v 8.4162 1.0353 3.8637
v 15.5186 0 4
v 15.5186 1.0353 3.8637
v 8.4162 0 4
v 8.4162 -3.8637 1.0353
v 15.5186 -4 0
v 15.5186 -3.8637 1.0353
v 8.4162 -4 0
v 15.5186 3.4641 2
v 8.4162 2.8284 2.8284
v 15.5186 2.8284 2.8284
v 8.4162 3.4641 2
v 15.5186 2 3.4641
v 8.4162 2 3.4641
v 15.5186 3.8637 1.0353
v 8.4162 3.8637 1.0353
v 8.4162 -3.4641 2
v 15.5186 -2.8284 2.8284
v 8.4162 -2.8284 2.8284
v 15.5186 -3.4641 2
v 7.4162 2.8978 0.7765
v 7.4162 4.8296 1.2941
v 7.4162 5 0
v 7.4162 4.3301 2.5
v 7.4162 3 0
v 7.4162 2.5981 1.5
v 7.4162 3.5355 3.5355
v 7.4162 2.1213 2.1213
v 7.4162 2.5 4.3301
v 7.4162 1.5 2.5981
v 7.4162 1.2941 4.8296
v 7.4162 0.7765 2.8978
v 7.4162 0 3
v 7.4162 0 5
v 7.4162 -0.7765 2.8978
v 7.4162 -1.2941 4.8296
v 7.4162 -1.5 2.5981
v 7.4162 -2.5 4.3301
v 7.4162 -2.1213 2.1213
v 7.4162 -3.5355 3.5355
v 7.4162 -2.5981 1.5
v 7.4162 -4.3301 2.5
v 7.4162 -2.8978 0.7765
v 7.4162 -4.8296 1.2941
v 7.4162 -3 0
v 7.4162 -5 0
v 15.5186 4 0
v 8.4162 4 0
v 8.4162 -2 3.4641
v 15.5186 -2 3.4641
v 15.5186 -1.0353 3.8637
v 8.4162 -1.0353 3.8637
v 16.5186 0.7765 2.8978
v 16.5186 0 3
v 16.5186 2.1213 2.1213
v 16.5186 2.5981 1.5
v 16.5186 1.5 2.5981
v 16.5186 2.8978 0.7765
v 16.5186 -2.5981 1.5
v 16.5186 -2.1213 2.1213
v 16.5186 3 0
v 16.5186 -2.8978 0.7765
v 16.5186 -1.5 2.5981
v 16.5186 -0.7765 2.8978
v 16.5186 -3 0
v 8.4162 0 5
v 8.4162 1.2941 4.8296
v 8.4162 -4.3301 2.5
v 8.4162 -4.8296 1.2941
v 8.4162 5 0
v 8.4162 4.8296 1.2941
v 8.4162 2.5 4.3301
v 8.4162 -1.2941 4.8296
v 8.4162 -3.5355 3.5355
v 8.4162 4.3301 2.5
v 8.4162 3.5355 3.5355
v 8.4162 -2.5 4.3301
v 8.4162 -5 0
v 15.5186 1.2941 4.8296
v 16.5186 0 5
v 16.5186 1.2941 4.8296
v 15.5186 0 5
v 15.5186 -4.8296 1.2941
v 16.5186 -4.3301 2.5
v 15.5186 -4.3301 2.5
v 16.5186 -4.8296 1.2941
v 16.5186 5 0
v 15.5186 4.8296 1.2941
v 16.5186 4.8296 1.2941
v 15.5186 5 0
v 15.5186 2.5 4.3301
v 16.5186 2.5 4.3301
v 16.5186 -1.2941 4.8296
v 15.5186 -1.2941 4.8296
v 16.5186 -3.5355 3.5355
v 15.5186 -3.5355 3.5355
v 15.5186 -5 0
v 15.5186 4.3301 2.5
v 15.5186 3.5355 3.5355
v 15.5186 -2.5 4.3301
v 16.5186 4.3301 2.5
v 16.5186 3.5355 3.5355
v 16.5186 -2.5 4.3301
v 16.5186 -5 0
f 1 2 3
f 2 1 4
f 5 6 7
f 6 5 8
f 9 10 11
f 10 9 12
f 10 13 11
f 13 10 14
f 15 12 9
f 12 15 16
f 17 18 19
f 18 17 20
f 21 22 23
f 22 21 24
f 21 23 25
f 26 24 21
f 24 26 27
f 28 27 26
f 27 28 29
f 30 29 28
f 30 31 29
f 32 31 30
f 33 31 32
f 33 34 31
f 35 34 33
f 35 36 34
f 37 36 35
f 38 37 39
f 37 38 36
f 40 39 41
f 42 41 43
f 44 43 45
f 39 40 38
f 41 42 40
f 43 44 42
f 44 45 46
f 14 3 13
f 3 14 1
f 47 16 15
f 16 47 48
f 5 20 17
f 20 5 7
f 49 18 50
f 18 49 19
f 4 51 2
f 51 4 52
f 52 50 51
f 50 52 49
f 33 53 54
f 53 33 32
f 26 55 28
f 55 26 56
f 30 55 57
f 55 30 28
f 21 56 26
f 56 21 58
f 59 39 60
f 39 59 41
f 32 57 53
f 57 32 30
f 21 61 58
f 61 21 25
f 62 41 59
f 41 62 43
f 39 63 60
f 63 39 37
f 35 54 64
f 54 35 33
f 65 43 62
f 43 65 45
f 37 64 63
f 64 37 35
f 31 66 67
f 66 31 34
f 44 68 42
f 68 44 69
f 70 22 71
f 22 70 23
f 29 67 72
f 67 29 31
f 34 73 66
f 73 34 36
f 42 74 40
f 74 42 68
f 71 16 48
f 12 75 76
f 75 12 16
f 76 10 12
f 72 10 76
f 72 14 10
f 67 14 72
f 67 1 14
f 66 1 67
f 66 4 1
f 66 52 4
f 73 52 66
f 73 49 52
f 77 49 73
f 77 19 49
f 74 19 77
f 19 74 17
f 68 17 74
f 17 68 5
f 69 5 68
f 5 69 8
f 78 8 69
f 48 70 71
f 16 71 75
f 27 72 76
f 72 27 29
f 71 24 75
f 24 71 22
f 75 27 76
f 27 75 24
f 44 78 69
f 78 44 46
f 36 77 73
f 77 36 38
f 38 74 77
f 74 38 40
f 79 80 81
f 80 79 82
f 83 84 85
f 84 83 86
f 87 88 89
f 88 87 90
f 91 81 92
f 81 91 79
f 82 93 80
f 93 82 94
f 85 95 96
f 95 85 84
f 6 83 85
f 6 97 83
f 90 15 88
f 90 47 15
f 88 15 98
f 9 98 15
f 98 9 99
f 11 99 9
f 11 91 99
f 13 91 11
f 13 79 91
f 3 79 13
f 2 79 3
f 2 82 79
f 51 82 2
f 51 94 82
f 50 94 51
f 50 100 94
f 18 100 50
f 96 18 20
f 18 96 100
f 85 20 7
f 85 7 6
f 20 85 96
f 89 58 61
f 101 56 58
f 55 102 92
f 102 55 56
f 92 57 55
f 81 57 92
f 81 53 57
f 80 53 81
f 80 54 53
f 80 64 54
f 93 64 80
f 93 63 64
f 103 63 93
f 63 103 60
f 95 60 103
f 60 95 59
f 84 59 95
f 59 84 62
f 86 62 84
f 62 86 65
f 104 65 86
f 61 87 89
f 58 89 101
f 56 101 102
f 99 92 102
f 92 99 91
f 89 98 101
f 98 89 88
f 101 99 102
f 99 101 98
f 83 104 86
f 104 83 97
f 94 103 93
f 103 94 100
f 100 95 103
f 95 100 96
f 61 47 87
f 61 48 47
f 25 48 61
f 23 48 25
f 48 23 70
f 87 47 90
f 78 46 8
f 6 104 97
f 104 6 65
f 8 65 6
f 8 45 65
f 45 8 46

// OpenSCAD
// file: ../build_environments.scad
// build_environments.scad: modules to build level sections
//

module pool(diameter=10.0, wall_height=2.0, step_width=3.0, connections=[])
{
    difference() {
        union() {
        difference() {
            cylinder(h=0.5,r1=diameter+step_width,r2=diameter+step_width,$fn=48);
            translate([0,0,-0.1])
                cylinder(h=0.7,r1=diameter,r2=diameter,$fn=48);
        }
        difference() {
            cylinder(h=wall_height,r1=diameter+step_width+1.0,r2=diameter+step_width+1.0,$fn=48);
            translate([0,0,-0.1])
                cylinder(h=wall_height+0.2,r1=diameter+step_width,r2=diameter+step_width,$fn=48);
        }
        }
    
        for (c = connections)
        {
            rotate([0,90,0]) {
                angle = atan2(c[1],c[0]);
                rotate([-angle,0,0]) {
                    cylinder(h=diameter+5.0,r1=c[2],r2=c[2],$fn=48);
                }
            }
        }
    }
}

module straight(length=10.0, width=2.0, dy1=0.0, dy2=0.0, dz=0.0)
{
    dims = [0, 0, 0, 0, 0, (dz/length)];
    matrix = [
        [ 1, dims[0], dims[1], 0 ],
        [ dims[2], 1, dims[4], 0 ],
        [ dims[5], dims[3], 1, 0 ],
        [ 0, 0, 0, 1 ]
    ];
    multmatrix(matrix)
    difference() {
        translate([dy1,0,0])
        union() {
            rotate([0,90,0]) {
                difference() {
                    cylinder(h=(length-dy1-dy2),r1=width+1.0,r2=width+1.0,$fn=24);
                    translate([0,0,-0.1])
                        cylinder(h=(length-dy1-dy2+0.2),r1=width,r2=width,$fn=24);
                }
                difference() {
                    cylinder(h=1.0,r1=width+2.0,r2=width+2.0,$fn=24);
                    translate([0,0,-0.1])
                        cylinder(h=1.2,r1=width,r2=width,$fn=24);
                }
                translate([0,0,(length-dy1-dy2)-1.0]) {
                    difference() {
                        cylinder(h=1.0,r1=width+2.0,r2=width+2.0,$fn=24);
                        translate([0,0,-0.1])
                            cylinder(h=1.2,r1=width,r2=width,$fn=24);
                    }
                }
            }
        }
        translate([0,0,-(2*width+4.0)/2])
            cube([3*length,3*length,2*width+4.0],center=true);
    }
}

module curve(p0=[0,0], center=[0,0], dir=1, angle=0.0, width=2.0)
{
    radius = sqrt((p0[0]-center[0])*(p0[0]-center[0]) + (p0[1]-center[1])*(p0[1]-center[1]));
    if (dir == 0) {
        difference() {
            rotate([0,0,-90])
            difference() {
                rotate_extrude(angle = angle, convexity = 10, $fn=32)
                    translate([radius, 0, 0])
                        circle(r = width+1.0,$fn=24);
                rotate([0,0,-1.0])
                    rotate_extrude(angle = angle+2.0, convexity = 10, $fn=32)
                        translate([radius, 0, 0])
                            circle(r = width,$fn=24);
            }
            translate([0,0,-(2*width+4.0)/2])
                cube([5*radius,5*radius,2*width+4.0],center=true);
        }
    }
    else {
        difference() {
            rotate([0,0,90])
            difference() {
                rotate_extrude(angle = -angle, convexity = 10, $fn=32)
                    translate([radius, 0, 0])
                        circle(r = width+1.0,$fn=24);
                rotate([0,0,1.0])
                    rotate_extrude(angle = -angle-2.0, convexity = 10, $fn=32)
                        translate([radius, 0, 0])
                            circle(r = width,$fn=24);
            }
            translate([0,0,-(2*width+4.0)/2])
                cube([5*radius,5*radius,2*width+4.0],center=true);
        }
    }

}

// test pool
//pool(diameter=12.0000, wall_height=3.0000, step_width=3.0000, connections=[[0.0000,-26.0000,2.0000], [23.6074,0.0000,2.0000]]);

// test straight, slope
//straight(length=26.0000, width=2.0000, dy1=11.8322, dy2=6.7082, dz=0.0000);
//straight(length=29.1549, width=12.0000, dy1=0.0000, dy2=0.0000, dz=-15.0000);

// test curve
//curve(p0=[23.6074, 0.0000], center=[23.6074, 5.0000], dir=0, angle=60.1011, width=2.0000);
//curve(p0=[33.6426, 12.4219], center=[37.9771, 9.9295], dir=1, angle=120.4627, width=2.0000);
// main file
use <../build_environments.scad>;
straight(length=16.5186, width=3.0000, dy1=7.4162, dy2=0.0000, dz=0.0000);
